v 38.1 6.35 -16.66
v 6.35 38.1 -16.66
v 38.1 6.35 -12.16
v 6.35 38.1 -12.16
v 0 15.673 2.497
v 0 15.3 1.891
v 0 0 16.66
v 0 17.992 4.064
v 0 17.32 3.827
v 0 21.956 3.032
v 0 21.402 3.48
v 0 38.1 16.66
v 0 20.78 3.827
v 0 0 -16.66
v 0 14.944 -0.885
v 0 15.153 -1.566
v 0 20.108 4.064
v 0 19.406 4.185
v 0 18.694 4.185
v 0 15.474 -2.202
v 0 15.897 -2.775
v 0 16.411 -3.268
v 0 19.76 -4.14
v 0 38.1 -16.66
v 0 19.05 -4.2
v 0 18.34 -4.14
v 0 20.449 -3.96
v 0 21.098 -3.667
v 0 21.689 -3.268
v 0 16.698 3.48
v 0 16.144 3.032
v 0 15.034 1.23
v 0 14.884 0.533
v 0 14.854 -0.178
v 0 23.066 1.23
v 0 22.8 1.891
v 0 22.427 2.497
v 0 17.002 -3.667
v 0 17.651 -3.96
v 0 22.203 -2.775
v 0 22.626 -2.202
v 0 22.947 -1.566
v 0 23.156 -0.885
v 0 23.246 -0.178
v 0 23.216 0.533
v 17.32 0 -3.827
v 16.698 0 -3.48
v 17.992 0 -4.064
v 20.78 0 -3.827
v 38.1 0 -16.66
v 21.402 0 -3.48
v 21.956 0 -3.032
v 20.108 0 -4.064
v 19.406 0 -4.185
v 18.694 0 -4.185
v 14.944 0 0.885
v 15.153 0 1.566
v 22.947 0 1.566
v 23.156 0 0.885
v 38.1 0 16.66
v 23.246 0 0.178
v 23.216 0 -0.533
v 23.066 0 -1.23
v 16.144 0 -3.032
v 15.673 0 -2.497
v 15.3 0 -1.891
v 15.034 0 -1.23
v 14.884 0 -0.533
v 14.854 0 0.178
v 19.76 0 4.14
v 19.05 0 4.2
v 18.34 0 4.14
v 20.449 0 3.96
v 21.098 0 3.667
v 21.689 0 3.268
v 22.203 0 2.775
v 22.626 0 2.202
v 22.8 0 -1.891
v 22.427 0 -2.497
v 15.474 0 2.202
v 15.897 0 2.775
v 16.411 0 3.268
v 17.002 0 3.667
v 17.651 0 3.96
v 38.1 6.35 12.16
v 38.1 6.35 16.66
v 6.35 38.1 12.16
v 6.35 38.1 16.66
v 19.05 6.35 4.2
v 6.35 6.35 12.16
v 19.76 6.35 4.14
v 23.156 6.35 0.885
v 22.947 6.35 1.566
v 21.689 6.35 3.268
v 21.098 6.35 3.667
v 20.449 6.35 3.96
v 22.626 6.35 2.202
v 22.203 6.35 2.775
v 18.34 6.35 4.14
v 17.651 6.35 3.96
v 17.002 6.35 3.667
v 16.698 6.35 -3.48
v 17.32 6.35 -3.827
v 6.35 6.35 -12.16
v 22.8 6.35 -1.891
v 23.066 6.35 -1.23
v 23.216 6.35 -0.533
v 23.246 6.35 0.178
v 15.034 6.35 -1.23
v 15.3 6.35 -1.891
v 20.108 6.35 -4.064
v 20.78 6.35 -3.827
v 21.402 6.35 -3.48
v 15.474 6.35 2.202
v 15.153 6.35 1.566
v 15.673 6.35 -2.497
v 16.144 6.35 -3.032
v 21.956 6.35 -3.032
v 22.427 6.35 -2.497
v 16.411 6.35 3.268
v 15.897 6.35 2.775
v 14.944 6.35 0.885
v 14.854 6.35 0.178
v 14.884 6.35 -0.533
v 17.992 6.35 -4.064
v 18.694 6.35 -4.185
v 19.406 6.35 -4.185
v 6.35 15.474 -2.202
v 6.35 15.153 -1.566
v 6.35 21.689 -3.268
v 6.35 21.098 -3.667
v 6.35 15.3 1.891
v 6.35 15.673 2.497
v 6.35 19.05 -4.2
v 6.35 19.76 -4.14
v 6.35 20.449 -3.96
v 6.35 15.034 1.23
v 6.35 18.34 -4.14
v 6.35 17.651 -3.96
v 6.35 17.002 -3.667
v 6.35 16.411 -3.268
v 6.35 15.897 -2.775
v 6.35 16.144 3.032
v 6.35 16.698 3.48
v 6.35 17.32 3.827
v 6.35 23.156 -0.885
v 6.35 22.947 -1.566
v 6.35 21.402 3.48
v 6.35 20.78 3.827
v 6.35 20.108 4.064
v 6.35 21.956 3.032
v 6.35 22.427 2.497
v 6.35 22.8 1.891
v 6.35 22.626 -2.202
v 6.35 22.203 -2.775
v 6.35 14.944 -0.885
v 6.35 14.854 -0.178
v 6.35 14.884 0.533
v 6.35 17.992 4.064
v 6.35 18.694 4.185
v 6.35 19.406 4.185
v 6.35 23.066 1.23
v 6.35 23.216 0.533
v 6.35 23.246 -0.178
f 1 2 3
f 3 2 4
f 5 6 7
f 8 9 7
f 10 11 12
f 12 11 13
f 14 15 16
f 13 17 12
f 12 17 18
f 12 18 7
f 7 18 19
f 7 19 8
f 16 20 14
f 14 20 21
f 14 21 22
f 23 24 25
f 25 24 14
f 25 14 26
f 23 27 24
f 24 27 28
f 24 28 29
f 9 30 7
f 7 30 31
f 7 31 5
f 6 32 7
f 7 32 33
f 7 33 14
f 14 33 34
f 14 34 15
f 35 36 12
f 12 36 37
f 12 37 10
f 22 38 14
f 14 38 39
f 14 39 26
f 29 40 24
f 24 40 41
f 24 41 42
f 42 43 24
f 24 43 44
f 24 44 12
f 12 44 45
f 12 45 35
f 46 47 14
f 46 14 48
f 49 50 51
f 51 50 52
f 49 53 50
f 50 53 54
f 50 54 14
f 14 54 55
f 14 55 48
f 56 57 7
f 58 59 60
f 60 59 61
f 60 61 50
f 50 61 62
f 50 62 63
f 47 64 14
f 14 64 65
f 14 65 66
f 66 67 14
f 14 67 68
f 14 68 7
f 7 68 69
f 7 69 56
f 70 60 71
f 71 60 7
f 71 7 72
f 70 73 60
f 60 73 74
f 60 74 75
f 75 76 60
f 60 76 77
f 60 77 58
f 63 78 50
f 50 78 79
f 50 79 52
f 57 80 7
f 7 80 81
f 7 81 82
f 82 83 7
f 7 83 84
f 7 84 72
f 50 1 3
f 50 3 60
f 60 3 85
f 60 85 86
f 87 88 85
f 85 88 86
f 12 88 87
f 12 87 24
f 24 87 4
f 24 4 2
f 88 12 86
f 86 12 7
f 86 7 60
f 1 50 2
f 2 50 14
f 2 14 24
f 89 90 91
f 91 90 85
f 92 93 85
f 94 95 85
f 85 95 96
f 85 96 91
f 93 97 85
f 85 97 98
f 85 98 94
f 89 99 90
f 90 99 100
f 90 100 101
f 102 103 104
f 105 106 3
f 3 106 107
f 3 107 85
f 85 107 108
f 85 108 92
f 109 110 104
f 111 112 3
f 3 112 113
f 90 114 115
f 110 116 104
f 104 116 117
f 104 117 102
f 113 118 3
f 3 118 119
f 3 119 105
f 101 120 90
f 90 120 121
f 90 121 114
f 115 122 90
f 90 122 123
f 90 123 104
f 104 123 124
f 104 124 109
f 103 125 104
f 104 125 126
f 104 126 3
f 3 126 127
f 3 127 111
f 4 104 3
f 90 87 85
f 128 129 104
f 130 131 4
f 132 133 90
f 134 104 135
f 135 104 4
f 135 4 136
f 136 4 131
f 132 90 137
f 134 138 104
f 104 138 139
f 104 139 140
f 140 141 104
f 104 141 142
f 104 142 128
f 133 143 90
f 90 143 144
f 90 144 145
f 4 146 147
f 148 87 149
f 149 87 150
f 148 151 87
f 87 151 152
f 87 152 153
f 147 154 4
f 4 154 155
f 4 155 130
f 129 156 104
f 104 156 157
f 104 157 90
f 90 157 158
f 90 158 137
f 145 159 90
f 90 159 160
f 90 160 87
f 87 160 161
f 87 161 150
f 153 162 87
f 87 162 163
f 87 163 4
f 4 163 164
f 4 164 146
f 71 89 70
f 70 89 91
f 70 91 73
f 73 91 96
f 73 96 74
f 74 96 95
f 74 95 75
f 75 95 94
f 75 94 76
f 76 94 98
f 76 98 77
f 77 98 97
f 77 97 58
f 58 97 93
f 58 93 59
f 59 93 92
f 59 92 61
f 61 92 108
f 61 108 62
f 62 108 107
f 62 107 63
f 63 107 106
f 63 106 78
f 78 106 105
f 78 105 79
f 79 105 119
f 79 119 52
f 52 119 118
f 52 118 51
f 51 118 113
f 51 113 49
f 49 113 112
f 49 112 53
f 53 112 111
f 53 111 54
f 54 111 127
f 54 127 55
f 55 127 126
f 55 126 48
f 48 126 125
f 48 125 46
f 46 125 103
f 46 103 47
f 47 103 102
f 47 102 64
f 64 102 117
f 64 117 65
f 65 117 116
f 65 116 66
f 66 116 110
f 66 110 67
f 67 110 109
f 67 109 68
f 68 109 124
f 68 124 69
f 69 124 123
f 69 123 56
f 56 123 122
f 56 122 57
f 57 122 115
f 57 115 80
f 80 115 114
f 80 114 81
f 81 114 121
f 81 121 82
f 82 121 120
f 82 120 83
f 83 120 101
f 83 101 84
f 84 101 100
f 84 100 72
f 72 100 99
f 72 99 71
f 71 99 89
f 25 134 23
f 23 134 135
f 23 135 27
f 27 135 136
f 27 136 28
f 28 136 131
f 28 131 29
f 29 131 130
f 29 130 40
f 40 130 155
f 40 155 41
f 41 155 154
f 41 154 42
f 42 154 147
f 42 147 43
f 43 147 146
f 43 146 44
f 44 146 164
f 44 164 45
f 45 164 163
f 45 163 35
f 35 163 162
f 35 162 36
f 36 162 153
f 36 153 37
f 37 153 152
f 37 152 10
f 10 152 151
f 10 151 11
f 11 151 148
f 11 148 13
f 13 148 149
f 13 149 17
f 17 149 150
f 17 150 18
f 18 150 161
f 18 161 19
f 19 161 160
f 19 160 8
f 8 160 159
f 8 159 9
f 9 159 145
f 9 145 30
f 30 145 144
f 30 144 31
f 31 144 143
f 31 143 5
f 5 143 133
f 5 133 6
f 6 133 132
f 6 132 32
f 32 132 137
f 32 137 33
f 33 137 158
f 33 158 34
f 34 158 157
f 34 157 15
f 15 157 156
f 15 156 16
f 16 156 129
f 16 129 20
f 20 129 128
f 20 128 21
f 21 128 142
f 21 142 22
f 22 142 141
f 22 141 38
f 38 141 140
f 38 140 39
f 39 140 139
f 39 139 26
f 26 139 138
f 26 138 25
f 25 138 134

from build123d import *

# Parameters (mm, degrees)
BODY_DEPTH   = 33.32
POCKET_DEPTH = 24.32
SKETCH3_R    = 4.2
HOLESX_DEPTH = 6.35
SKETCH4_R    = 4.2
HOLESY_DEPTH = 6.35


with BuildPart() as part:
    # Sketch1 → Body (new body)
    with BuildSketch(Plane.XY.offset(-16.66)):
        Polygon((0, 0), (38.1, 0), (38.1, 6.35), (6.35, 38.1), (0, 38.1), align=None)
    extrude(amount=BODY_DEPTH)

    # Sketch2 → Pocket (cut)
    with BuildSketch(Plane.XY.offset(12.16)):
        Polygon((6.35, 6.35), (48.1, 6.35), (6.35, 48.1), align=None)
    extrude(amount=-POCKET_DEPTH, mode=Mode.SUBTRACT)

    # Sketch3 → HolesX (cut)
    with BuildSketch(Plane(origin=(0, 6.35, 0), x_dir=(1, 0, 0), z_dir=(0, 1, 0))):
        with Locations(Location((19.05, 0, 0), (0, 0, 270))):
            Circle(SKETCH3_R)
    extrude(amount=-HOLESX_DEPTH, mode=Mode.SUBTRACT)

    # Sketch4 → HolesY (cut)
    with BuildSketch(Plane(origin=(6.35, 0, 0), x_dir=(0, 0, -1), z_dir=(1, 0, 0))):
        with Locations((0, 19.05)):
            Circle(SKETCH4_R)
    extrude(amount=-HOLESY_DEPTH, mode=Mode.SUBTRACT)


solid = part.part
